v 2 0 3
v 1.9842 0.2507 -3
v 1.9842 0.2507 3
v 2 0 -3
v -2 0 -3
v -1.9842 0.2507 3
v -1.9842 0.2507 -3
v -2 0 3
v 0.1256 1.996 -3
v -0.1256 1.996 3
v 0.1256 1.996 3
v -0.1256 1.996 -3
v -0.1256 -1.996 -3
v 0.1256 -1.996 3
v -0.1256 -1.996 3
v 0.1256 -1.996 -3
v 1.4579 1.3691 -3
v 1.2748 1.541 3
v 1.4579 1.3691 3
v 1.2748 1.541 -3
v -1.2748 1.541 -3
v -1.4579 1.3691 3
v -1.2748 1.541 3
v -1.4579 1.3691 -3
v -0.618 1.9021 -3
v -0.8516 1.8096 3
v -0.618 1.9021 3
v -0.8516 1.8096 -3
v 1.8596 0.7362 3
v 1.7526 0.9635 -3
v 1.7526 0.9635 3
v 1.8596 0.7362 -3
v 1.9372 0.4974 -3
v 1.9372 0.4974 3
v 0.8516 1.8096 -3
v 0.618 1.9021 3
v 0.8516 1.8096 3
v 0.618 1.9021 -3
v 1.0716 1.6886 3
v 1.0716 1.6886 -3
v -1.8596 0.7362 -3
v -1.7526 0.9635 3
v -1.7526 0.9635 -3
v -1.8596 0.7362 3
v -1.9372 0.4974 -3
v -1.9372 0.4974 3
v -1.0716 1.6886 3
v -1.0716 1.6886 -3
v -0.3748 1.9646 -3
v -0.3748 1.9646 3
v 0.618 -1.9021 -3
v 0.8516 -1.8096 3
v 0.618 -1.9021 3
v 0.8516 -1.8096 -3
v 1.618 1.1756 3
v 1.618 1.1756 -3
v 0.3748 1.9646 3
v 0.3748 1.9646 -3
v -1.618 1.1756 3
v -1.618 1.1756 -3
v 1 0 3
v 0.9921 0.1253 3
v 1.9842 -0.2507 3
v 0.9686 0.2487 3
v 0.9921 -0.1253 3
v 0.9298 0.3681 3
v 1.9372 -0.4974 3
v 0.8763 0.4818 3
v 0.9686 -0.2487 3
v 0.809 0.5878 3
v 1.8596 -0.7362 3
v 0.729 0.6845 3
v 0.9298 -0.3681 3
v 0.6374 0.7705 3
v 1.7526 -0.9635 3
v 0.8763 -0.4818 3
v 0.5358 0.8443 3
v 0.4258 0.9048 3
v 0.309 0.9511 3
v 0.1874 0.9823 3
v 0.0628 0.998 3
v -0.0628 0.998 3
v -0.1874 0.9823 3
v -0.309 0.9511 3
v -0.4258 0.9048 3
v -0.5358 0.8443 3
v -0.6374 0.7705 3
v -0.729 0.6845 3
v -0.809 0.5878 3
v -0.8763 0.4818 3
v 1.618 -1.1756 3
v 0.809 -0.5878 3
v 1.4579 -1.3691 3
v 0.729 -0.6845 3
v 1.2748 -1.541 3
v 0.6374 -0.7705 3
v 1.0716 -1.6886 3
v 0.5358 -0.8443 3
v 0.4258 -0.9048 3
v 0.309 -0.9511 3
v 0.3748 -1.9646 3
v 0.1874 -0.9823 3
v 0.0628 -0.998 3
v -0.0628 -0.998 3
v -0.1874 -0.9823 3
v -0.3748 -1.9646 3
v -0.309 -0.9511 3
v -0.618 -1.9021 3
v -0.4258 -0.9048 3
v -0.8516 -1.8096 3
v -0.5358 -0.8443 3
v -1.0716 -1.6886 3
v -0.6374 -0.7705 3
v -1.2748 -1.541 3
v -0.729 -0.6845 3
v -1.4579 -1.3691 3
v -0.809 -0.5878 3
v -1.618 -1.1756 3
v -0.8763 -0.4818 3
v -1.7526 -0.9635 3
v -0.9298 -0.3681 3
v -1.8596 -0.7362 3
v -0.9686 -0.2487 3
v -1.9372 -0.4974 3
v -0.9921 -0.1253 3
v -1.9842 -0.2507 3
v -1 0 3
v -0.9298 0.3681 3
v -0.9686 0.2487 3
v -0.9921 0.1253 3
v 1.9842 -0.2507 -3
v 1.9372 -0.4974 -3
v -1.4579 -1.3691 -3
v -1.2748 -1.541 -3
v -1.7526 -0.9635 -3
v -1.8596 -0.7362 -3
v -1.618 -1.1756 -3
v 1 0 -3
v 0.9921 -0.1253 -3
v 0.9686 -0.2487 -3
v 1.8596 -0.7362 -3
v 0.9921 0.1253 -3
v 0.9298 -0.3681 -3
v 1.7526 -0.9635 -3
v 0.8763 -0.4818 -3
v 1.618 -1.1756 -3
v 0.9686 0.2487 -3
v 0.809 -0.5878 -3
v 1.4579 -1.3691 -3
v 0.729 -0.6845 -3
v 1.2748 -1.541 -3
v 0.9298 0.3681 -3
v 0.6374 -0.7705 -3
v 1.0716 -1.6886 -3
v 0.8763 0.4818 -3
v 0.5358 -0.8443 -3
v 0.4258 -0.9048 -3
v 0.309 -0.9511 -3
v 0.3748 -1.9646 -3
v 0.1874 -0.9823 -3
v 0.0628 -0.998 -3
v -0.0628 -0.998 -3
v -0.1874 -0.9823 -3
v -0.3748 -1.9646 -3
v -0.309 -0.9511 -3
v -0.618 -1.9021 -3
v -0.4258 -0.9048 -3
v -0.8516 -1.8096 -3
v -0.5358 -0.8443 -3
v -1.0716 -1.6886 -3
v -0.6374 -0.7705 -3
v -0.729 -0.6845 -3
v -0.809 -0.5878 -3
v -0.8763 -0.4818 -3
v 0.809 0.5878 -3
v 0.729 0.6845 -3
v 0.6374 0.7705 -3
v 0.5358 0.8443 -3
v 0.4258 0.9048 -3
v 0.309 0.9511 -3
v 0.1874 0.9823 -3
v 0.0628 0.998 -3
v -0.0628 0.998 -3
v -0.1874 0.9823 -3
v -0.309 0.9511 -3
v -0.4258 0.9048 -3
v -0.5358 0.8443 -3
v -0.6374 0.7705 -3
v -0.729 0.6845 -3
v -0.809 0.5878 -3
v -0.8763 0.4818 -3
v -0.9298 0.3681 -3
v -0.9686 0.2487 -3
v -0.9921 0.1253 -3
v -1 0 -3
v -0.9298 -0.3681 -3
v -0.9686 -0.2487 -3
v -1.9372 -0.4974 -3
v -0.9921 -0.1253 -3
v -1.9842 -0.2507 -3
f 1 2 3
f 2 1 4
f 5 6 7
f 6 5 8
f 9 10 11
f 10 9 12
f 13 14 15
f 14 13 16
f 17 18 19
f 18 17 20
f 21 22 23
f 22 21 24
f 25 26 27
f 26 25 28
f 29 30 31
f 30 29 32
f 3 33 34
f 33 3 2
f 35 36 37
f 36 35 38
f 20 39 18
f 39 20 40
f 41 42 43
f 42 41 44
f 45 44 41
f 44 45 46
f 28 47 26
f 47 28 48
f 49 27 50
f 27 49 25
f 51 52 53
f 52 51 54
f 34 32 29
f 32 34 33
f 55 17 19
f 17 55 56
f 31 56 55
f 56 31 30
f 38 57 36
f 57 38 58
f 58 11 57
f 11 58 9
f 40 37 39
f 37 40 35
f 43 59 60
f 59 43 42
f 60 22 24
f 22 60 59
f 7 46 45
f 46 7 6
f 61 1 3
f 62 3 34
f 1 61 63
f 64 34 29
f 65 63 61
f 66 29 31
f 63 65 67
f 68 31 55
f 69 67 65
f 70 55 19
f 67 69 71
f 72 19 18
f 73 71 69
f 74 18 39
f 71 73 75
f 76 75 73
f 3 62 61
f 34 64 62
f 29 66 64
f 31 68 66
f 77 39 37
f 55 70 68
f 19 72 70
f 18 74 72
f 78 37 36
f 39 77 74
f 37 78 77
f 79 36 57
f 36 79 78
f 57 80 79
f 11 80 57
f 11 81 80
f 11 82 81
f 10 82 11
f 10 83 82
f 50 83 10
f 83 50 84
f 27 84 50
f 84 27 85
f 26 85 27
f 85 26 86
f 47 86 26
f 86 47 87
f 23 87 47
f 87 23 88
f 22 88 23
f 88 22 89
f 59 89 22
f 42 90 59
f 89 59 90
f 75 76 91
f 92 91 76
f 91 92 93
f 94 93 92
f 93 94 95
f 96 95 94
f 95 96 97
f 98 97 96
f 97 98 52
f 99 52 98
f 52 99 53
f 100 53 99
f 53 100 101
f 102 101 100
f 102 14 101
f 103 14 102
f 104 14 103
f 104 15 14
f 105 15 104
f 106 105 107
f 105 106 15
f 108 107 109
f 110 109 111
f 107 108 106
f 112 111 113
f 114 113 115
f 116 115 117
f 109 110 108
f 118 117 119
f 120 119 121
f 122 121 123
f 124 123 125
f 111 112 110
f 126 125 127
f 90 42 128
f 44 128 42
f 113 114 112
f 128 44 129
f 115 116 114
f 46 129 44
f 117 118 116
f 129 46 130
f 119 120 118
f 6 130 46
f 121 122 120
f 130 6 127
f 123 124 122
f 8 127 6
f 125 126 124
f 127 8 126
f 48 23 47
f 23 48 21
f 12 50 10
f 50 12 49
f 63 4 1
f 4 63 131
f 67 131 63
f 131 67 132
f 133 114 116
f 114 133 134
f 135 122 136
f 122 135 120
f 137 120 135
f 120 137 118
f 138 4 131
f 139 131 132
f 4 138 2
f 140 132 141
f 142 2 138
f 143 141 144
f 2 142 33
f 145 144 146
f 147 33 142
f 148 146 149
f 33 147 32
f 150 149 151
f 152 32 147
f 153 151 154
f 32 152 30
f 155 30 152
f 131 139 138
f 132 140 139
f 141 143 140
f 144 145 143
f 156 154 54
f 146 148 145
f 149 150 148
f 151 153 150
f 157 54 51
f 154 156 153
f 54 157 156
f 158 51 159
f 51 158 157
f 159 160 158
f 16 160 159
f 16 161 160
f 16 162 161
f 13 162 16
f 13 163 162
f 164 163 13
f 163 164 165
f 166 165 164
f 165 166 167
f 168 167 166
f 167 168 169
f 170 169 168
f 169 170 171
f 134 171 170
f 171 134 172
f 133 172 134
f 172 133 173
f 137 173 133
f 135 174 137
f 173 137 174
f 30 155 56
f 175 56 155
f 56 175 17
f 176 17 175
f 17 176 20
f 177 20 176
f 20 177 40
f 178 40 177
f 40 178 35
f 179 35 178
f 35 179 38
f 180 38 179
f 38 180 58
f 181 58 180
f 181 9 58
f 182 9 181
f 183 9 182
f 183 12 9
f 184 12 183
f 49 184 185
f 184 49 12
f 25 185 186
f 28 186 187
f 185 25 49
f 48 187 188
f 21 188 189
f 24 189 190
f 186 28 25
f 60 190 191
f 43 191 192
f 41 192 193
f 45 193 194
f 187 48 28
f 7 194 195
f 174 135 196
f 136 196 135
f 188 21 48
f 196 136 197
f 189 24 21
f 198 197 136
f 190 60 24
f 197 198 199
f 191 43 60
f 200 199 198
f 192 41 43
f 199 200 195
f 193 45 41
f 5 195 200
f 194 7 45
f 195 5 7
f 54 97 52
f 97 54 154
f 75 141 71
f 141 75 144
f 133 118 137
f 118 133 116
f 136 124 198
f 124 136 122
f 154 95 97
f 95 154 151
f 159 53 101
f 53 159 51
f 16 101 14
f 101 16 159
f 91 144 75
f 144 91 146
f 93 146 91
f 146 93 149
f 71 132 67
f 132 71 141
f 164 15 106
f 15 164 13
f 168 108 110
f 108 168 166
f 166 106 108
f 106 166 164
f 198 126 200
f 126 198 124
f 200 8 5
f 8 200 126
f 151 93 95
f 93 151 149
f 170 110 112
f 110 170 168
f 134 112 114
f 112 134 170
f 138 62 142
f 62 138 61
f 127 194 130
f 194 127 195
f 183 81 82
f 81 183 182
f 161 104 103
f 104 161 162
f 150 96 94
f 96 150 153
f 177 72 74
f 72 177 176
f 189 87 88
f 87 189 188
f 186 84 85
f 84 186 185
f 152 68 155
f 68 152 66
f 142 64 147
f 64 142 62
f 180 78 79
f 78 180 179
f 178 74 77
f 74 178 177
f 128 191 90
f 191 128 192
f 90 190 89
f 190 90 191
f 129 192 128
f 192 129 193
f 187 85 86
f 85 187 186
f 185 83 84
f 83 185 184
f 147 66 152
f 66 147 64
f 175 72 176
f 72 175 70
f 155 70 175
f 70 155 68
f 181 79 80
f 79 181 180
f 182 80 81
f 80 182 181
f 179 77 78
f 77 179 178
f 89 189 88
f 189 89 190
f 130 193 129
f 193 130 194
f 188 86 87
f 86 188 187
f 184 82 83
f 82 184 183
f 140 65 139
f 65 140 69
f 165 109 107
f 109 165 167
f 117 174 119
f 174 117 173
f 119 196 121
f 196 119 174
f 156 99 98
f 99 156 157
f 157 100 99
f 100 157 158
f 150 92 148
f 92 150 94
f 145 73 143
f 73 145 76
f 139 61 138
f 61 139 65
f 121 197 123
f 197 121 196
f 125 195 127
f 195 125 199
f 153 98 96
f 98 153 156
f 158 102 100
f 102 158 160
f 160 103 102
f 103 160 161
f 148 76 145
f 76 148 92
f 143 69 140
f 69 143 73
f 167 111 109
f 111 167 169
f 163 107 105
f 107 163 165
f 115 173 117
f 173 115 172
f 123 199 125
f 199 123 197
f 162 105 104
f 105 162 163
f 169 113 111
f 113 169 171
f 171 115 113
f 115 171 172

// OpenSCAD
$fn = 50;


difference() {
	union() {
		translate(v = [0, 0, -3.0000000000]) {
			cylinder(h = 6, r = 2.0000000000);
		}
	}
	union() {
		translate(v = [0, 0, -100.0000000000]) {
			cylinder(h = 200, r = 1.0000000000);
		}
	}
}
